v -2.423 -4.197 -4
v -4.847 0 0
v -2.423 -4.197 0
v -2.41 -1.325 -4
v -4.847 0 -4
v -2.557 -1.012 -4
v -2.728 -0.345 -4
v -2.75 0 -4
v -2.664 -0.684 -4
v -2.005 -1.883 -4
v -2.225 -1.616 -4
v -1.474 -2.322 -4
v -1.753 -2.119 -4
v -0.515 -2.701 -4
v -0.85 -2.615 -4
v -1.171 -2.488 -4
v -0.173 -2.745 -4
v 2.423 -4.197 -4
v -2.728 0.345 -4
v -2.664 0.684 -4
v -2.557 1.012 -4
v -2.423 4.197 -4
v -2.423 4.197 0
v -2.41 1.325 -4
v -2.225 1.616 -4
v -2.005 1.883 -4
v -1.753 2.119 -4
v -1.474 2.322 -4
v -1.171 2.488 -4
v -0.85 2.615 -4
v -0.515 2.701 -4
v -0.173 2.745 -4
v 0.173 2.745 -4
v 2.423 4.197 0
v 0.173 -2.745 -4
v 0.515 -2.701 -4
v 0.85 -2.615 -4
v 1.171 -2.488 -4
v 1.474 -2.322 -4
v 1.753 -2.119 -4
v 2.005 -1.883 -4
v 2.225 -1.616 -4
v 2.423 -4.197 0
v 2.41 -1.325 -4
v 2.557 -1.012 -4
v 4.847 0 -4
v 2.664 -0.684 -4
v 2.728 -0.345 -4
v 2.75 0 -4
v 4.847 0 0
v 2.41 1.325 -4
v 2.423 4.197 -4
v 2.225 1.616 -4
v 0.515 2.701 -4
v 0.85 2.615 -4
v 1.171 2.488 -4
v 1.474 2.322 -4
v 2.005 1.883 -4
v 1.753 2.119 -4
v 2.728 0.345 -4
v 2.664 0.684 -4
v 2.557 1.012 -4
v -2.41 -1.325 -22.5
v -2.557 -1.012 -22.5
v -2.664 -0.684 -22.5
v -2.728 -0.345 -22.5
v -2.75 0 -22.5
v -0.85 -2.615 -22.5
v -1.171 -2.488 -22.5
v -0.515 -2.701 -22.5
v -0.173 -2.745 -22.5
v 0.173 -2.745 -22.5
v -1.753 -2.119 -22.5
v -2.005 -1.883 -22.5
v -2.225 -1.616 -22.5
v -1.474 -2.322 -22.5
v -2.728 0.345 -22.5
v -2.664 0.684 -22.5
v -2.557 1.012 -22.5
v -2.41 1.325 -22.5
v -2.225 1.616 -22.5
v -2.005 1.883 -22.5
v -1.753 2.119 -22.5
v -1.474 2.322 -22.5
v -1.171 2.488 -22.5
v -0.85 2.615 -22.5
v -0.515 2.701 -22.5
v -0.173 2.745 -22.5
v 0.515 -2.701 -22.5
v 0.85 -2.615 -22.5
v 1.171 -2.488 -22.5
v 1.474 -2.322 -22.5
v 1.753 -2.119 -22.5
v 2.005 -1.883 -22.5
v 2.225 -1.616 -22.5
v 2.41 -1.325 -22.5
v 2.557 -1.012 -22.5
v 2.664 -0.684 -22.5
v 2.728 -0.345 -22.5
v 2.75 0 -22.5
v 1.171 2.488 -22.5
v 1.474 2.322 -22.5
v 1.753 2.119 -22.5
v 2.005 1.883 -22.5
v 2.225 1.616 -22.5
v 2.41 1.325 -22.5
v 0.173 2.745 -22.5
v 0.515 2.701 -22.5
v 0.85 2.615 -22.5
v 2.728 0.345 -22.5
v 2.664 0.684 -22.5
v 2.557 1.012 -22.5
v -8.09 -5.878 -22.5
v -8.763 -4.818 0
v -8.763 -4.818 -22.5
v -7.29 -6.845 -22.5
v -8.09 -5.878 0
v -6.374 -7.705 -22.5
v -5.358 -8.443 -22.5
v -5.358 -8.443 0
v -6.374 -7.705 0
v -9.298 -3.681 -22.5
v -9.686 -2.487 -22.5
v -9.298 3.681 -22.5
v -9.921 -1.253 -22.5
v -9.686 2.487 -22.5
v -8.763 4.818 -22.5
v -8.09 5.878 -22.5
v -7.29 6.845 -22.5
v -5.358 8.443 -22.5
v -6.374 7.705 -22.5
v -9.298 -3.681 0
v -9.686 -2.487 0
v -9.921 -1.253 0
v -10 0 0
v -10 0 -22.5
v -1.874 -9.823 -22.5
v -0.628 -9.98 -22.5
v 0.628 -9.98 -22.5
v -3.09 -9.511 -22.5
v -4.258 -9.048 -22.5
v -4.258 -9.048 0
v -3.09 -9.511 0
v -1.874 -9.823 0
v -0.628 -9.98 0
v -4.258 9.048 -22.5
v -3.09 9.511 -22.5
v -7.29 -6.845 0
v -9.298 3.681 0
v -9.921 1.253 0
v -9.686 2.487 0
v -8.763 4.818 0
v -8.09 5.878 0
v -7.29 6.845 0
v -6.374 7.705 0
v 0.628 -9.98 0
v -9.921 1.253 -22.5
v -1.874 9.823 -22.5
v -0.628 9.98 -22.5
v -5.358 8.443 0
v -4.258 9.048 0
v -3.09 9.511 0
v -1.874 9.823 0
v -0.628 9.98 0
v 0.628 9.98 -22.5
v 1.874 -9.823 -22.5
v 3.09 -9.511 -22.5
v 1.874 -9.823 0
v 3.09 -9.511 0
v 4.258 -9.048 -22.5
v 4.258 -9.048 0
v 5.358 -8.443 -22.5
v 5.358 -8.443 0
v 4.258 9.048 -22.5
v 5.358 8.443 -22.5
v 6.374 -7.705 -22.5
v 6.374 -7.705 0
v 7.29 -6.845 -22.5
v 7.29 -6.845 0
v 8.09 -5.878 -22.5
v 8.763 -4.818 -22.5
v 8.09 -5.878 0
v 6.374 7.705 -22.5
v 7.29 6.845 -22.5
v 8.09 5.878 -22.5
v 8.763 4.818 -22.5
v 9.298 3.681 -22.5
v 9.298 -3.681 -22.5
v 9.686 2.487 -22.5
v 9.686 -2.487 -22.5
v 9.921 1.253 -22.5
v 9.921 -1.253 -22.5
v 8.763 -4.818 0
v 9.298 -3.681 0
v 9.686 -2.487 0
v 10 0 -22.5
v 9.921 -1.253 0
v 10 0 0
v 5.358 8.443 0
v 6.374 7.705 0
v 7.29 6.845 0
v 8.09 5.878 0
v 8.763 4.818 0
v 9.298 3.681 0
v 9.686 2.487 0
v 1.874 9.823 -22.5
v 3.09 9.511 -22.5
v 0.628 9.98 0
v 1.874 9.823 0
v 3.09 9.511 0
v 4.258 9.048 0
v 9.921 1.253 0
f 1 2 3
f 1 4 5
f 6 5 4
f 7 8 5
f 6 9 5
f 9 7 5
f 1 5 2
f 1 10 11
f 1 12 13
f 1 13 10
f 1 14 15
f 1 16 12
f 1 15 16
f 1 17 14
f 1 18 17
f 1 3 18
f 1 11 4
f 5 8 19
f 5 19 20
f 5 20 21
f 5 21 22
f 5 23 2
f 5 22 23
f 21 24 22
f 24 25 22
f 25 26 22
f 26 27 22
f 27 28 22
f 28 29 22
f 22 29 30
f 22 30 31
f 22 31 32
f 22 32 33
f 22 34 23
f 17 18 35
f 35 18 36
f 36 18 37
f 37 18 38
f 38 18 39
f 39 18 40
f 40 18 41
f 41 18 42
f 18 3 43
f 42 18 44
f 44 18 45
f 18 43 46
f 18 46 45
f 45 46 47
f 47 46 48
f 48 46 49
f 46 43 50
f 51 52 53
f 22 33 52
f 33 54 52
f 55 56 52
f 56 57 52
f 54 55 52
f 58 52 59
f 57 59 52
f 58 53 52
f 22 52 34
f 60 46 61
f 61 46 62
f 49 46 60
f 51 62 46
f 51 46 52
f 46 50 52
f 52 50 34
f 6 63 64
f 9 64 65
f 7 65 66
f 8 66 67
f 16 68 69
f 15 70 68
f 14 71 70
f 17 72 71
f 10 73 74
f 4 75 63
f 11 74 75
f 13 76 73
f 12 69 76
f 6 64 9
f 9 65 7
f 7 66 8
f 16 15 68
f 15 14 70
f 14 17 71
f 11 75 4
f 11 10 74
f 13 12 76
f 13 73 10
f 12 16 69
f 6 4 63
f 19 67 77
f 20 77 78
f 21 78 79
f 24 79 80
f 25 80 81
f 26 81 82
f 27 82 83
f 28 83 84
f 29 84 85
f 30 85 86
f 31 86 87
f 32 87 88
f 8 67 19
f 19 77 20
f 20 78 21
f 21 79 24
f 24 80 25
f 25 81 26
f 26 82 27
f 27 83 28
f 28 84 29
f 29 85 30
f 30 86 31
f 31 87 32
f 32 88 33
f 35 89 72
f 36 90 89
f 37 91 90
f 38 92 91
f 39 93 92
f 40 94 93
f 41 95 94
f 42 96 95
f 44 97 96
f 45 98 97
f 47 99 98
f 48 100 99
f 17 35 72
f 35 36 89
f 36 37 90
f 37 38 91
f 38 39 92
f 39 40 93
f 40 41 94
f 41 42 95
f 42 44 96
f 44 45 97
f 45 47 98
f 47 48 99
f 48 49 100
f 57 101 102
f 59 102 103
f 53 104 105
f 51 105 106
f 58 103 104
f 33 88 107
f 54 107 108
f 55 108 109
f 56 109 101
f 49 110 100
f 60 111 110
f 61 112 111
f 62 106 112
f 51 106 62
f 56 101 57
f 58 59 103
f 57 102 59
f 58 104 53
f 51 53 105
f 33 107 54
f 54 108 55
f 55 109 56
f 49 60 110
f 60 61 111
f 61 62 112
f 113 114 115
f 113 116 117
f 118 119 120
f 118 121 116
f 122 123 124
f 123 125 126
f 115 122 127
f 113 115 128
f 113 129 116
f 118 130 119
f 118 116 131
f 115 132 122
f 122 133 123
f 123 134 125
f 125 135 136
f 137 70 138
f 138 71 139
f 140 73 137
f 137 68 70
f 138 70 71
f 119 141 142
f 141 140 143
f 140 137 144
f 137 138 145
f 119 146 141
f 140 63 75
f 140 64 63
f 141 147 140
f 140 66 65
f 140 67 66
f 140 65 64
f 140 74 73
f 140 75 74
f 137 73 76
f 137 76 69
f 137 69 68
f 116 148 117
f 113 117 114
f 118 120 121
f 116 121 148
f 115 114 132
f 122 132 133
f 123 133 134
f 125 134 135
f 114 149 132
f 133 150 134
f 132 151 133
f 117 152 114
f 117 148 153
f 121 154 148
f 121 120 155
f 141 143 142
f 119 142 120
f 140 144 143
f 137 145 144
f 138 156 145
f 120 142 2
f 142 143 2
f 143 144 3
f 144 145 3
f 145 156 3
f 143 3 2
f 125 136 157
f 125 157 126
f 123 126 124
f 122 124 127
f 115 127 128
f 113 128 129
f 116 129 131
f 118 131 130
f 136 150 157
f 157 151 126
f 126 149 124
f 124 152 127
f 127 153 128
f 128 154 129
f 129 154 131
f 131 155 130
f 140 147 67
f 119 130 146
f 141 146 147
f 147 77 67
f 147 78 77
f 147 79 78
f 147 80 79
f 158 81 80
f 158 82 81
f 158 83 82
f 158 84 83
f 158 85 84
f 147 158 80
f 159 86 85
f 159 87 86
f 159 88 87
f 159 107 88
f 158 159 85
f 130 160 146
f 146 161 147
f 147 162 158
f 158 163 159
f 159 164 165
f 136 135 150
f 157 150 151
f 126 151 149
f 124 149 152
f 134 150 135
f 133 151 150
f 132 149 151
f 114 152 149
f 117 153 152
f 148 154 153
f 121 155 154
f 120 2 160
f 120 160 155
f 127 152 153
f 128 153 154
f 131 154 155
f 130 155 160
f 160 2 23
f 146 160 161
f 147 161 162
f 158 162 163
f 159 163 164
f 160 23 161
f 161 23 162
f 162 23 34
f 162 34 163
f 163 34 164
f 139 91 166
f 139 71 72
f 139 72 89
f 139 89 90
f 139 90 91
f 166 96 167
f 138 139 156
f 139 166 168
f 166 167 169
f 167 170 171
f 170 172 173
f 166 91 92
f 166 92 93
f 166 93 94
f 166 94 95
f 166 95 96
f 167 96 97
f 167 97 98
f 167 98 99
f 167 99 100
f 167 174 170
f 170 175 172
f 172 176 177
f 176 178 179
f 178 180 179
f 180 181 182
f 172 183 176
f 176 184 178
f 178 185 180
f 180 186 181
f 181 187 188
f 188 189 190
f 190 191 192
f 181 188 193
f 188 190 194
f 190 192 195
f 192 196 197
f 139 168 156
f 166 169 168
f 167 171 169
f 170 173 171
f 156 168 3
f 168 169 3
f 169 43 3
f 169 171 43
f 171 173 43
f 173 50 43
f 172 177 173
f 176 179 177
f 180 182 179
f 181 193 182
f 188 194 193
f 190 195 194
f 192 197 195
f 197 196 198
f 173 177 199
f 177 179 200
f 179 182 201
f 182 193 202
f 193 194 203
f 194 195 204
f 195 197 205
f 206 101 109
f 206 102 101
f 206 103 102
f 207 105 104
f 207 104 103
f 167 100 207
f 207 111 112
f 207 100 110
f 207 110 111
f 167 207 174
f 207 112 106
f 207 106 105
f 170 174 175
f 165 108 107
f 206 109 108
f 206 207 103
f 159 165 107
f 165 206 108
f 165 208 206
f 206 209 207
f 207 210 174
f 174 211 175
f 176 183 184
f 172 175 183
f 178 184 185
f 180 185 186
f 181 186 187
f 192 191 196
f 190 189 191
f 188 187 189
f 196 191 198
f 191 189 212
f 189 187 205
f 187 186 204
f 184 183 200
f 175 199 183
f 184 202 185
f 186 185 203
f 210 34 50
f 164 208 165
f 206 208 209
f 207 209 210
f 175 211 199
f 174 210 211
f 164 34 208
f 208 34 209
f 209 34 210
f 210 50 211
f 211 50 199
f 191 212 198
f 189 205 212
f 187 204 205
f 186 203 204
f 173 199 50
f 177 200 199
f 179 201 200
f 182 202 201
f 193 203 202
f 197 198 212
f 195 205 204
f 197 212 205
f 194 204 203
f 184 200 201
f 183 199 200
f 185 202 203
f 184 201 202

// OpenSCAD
$fn = 50;


difference() {
	union() {
		translate(v = [0, 0, -22.5000000000]) {
			cylinder(h = 22.5000000000, r = 10.0000000000);
		}
	}
	union() {
		translate(v = [0, 0, 0]) {
			rotate(a = [0, 0, 0]) {
				difference() {
					union() {
						translate(v = [0, 0, -4]) {
							linear_extrude(height = 4) {
								polygon(points = [[4.8468000000, 0.0000000000], [2.4234000000, 4.1974519271], [-2.4234000000, 4.1974519271], [-4.8468000000, 0.0000000000], [-2.4234000000, -4.1974519271], [2.4234000000, -4.1974519271]]);
							}
						}
					}
					union();
				}
			}
		}
		#translate(v = [0, 0, -100.0000000000]) {
			cylinder(h = 200, r = 2.7500000000);
		}
	}
}
